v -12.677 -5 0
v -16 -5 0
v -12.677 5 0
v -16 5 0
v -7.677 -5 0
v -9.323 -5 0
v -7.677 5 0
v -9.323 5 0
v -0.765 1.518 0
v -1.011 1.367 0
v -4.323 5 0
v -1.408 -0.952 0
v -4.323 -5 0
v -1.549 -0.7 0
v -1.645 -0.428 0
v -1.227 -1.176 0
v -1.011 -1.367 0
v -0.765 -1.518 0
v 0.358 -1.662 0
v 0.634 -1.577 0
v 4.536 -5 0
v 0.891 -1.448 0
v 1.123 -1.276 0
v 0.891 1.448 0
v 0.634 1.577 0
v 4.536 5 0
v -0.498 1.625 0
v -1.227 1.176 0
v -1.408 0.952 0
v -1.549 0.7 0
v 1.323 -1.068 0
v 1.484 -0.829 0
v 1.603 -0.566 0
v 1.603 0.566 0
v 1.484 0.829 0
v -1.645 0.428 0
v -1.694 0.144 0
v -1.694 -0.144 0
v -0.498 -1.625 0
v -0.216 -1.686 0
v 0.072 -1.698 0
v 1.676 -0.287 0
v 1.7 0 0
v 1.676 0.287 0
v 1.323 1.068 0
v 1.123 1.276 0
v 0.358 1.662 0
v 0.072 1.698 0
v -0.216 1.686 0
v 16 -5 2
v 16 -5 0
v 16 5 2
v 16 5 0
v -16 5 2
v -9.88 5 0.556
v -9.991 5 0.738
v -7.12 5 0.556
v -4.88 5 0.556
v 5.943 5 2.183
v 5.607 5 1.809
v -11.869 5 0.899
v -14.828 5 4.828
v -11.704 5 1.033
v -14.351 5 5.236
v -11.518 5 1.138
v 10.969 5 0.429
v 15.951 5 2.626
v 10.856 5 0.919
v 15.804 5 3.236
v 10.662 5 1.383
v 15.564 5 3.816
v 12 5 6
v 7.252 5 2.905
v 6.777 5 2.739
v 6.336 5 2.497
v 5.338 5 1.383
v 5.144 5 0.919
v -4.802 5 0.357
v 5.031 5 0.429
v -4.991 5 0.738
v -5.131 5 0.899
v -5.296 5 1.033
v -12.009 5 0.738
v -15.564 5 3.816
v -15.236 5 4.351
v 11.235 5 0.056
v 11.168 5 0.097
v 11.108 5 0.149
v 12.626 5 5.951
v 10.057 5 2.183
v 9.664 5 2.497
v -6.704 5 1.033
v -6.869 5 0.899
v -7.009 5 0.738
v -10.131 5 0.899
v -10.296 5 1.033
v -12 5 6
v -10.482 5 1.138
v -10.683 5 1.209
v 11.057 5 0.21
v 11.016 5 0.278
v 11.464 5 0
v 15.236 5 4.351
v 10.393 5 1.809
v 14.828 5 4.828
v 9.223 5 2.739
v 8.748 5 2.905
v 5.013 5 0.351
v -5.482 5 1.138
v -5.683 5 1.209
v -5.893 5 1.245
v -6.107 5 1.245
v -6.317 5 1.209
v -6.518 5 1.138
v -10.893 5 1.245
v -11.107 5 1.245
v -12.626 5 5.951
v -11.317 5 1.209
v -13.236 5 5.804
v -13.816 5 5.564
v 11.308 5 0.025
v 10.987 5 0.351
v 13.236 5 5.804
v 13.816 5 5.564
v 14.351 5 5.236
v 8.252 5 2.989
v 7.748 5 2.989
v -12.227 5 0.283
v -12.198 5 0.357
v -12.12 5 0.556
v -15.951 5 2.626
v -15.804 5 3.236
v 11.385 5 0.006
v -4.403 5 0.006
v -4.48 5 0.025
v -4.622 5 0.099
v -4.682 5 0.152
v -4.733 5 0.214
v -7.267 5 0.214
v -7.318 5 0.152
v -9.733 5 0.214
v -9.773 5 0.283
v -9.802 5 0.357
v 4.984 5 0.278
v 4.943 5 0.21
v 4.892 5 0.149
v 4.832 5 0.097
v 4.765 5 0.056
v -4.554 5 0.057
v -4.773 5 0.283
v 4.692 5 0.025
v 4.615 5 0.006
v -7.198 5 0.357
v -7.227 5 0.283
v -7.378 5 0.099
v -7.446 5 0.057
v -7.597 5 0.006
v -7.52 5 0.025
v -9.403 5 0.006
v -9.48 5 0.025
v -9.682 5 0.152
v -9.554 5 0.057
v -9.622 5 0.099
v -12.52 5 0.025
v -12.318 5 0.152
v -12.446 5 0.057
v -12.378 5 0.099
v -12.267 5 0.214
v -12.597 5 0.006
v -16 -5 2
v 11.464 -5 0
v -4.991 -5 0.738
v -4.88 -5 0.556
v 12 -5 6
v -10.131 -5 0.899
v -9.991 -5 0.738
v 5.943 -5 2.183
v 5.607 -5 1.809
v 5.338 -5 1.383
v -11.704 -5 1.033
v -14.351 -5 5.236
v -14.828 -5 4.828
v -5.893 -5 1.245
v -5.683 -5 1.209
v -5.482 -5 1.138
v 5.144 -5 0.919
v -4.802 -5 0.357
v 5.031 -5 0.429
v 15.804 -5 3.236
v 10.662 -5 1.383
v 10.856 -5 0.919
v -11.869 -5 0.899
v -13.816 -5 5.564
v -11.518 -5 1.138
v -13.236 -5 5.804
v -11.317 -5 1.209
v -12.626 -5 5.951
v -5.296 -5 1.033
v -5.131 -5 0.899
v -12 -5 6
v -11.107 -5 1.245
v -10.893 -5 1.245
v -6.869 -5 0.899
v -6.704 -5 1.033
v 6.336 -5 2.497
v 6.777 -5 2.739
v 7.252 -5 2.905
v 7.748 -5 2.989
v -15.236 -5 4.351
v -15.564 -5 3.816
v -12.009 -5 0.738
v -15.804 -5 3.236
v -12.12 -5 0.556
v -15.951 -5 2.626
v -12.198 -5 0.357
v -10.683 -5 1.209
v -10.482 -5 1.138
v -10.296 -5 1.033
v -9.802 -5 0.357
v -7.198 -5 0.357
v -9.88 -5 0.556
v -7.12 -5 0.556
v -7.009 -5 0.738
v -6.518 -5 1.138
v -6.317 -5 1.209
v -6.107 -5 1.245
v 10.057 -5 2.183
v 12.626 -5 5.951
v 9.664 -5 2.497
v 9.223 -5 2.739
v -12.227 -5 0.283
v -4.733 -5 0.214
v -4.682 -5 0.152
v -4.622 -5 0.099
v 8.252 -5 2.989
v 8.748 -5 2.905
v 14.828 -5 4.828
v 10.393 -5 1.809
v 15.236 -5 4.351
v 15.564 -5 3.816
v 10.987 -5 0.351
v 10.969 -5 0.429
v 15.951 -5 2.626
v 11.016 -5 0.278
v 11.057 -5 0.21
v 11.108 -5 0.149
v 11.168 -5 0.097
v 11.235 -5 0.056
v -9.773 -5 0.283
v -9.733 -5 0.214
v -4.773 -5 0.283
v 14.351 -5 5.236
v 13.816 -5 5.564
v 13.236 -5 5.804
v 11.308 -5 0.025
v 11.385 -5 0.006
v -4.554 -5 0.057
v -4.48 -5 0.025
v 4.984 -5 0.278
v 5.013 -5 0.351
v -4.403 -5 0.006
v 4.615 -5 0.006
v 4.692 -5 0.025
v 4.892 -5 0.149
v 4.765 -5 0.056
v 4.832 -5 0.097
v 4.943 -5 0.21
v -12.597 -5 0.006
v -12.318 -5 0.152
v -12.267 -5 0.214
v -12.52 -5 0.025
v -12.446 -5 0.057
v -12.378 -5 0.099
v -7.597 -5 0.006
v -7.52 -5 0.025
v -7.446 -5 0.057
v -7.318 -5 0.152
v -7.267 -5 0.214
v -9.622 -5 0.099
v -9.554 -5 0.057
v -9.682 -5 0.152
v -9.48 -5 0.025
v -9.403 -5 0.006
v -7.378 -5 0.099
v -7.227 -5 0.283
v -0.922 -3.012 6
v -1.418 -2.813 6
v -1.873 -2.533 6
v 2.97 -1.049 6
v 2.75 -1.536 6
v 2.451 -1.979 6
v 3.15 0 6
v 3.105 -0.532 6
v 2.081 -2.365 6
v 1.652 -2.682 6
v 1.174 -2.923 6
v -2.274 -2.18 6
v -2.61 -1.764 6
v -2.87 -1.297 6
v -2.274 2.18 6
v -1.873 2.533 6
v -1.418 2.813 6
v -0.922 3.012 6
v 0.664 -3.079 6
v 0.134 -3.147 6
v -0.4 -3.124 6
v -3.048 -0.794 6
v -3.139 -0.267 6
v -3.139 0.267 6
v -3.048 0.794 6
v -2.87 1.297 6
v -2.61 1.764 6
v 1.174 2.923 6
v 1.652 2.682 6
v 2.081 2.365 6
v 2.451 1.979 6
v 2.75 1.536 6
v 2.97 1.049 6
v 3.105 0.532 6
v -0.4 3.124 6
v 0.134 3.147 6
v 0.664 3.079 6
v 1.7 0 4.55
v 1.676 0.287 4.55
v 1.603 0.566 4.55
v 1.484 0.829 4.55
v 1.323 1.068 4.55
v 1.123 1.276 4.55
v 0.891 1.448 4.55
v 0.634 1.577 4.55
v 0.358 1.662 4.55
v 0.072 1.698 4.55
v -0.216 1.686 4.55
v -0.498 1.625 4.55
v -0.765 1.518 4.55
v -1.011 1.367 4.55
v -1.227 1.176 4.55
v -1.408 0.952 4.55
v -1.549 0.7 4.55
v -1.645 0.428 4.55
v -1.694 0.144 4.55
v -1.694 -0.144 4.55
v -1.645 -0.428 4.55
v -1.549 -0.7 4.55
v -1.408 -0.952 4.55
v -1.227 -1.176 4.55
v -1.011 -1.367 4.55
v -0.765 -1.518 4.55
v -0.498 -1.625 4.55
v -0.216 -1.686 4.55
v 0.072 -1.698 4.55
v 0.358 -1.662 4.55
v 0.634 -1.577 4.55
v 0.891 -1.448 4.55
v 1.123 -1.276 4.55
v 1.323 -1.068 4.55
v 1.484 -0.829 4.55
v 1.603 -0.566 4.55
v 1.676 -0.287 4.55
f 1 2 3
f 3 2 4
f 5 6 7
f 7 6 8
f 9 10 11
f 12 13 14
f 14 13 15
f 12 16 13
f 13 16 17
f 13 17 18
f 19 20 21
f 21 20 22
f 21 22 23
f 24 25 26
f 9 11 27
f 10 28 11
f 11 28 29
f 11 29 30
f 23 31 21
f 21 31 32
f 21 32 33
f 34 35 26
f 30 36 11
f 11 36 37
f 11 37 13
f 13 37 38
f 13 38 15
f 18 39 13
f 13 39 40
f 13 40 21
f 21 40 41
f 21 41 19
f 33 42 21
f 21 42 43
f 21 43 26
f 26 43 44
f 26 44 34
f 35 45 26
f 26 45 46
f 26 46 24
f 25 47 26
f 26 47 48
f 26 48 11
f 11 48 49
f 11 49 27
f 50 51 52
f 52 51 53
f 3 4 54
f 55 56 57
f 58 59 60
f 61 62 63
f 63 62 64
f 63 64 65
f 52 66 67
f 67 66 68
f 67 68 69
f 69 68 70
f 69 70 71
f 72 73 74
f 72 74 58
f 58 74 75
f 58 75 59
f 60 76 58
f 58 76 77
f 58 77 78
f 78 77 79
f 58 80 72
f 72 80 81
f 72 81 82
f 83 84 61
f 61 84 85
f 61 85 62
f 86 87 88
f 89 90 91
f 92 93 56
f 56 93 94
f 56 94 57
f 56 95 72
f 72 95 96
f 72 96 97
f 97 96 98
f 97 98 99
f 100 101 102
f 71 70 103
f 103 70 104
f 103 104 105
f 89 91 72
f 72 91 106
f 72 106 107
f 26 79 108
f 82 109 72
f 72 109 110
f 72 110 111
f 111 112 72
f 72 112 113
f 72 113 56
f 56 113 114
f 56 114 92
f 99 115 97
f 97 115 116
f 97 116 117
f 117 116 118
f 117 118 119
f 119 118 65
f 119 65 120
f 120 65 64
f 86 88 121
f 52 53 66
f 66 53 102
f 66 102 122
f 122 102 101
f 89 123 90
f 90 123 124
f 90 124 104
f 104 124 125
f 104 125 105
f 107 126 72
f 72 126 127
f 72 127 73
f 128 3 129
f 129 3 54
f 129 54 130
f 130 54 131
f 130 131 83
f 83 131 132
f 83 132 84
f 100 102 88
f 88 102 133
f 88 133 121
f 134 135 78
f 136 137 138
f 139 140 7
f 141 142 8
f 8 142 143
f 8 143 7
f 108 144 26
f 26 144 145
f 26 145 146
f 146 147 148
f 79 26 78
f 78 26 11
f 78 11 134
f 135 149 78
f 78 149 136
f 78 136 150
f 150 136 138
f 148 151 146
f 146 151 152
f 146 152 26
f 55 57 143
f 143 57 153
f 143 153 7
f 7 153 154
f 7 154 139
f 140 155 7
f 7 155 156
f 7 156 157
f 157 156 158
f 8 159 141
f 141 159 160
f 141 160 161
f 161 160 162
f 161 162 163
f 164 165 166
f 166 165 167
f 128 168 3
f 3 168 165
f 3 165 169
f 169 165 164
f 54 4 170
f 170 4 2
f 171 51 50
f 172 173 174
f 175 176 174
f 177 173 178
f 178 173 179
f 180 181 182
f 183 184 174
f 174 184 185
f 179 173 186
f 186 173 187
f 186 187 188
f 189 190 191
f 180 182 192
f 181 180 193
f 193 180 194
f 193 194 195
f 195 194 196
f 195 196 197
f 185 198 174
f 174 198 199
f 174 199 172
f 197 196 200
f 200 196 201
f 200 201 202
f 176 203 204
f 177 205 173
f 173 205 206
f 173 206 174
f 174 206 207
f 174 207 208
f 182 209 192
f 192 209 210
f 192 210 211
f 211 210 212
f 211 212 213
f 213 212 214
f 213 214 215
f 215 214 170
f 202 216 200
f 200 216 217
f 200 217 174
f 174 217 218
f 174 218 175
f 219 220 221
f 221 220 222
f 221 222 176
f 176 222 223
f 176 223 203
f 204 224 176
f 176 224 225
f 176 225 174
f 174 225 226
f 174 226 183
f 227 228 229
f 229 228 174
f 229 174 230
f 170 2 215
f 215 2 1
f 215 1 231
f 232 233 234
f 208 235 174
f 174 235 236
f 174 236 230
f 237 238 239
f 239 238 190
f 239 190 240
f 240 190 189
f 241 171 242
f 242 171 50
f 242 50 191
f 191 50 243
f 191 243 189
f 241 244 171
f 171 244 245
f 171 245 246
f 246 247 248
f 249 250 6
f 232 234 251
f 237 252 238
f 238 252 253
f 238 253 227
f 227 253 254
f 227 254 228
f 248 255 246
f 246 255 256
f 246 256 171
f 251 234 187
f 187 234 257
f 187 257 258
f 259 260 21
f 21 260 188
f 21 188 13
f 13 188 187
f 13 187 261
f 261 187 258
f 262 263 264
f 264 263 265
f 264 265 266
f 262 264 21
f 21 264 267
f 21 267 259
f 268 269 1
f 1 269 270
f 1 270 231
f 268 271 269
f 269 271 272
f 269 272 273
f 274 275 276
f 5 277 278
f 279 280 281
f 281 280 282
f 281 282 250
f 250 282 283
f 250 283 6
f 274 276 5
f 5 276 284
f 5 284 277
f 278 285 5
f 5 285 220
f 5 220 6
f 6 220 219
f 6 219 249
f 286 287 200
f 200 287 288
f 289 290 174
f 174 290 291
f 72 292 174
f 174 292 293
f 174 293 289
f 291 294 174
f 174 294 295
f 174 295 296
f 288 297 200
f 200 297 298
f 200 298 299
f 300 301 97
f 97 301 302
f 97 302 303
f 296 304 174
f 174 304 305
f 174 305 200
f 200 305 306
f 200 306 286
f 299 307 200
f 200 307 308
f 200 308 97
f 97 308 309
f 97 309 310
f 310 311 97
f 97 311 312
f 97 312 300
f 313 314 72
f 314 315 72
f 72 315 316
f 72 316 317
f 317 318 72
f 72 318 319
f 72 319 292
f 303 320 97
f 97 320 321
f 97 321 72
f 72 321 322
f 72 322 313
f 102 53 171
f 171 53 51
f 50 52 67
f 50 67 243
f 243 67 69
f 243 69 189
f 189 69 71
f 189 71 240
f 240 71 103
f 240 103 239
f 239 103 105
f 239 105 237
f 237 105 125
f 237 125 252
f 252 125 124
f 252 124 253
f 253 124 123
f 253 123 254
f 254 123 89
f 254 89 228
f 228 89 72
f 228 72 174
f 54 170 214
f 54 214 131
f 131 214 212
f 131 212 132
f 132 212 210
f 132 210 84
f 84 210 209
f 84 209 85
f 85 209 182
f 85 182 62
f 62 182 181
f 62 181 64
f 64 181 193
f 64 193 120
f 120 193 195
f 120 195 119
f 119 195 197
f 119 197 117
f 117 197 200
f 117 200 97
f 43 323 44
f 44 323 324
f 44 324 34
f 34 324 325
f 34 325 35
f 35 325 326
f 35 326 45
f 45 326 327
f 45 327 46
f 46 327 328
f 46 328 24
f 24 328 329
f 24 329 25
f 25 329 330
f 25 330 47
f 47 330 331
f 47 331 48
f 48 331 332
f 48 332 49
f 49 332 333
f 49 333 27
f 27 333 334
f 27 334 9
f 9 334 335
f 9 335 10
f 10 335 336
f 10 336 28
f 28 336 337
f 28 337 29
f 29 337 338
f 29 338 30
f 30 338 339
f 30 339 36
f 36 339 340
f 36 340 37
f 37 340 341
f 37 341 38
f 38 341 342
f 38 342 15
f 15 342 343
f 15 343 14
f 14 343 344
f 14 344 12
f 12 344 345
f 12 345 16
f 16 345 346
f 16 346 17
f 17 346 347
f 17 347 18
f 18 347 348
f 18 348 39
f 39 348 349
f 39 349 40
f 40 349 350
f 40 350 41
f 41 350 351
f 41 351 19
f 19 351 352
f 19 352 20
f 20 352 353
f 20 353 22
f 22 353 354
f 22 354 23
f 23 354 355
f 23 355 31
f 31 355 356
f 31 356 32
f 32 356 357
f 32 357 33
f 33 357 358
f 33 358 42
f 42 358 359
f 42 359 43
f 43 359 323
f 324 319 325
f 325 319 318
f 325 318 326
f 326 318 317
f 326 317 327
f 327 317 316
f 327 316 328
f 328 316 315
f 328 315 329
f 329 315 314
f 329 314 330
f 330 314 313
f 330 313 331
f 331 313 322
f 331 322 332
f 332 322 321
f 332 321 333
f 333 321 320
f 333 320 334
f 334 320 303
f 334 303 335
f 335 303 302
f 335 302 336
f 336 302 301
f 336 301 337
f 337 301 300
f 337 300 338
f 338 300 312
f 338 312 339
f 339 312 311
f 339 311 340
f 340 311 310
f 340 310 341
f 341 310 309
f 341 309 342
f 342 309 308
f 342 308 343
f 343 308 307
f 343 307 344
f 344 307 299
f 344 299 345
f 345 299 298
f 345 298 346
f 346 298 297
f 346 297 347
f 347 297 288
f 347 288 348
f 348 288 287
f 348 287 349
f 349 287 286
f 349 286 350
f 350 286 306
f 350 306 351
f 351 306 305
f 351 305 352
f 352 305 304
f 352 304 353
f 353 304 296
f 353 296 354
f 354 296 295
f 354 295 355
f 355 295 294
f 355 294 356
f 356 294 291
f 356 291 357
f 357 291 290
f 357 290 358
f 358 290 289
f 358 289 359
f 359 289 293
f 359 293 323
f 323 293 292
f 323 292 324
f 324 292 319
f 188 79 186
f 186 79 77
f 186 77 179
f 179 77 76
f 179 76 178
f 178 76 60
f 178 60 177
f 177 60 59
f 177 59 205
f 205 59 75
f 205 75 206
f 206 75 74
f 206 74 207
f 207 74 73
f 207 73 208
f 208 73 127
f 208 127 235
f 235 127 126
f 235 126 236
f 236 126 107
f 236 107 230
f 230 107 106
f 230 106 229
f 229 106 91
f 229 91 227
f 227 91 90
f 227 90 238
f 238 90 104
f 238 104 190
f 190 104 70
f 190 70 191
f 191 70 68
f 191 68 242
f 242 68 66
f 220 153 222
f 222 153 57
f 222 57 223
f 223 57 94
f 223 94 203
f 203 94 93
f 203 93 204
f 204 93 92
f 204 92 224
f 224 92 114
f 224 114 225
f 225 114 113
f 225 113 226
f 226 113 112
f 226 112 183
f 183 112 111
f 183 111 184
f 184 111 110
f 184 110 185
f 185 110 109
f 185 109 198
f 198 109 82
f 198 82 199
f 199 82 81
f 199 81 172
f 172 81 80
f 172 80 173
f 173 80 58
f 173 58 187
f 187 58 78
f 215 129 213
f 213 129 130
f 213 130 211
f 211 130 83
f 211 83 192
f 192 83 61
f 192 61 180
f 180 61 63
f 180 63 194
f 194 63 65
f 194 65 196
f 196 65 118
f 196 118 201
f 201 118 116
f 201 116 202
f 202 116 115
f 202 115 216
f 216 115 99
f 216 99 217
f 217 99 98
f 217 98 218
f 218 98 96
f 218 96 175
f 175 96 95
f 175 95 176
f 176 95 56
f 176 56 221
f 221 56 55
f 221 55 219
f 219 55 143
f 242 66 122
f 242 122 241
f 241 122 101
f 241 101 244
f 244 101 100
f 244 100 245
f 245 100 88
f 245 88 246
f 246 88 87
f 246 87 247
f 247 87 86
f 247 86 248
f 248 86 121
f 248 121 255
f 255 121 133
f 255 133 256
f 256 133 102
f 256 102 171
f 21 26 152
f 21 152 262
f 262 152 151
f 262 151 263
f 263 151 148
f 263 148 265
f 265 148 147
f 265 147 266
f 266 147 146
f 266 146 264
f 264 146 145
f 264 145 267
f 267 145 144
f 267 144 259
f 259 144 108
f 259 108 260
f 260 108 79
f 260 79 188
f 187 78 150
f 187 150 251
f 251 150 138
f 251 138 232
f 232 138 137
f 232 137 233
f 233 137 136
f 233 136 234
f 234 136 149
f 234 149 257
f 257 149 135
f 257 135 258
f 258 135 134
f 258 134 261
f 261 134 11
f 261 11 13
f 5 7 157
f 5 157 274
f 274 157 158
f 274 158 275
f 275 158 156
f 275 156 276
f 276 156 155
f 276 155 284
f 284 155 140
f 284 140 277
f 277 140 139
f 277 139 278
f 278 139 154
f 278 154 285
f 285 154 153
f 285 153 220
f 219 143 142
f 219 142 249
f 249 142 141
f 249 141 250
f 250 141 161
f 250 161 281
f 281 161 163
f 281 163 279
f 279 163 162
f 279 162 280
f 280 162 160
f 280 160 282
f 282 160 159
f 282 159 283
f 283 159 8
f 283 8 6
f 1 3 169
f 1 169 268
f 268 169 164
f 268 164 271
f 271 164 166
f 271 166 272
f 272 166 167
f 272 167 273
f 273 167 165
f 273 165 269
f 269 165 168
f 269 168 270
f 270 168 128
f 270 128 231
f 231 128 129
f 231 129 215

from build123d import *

# Parameters (mm, degrees)
SKETCH1_W               = 32
SKETCH1_H               = 10
BOSS_EXTRUDE1_DEPTH     = 6
FILLET1_R               = 4
SKETCH3_R               = 1.25
SKETCH3_R_2             = 3
CUT_EXTRUDE1_DEPTH      = 6
CUT_EXTRUDE1_DEPTH_BACK = 6
FILLET2_R               = 0.5


with BuildPart() as part:
    # Sketch1 → Boss-Extrude1 (new body)
    with BuildSketch(Plane.XY):
        Rectangle(SKETCH1_W, SKETCH1_H)
    extrude(amount=BOSS_EXTRUDE1_DEPTH)

    # Fillet1
    fillet1_edges = [part.edges().sort_by_distance(p)[0] for p in [
        (-16, 0, 6),
        (16, 0, 6),
    ]]
    fillet(fillet1_edges, radius=FILLET1_R)

    # Sketch2 → Cut-Revolve1 (revolve, cut)
    with BuildSketch(Plane(origin=(0, 0, 0), x_dir=(1, 0, 0), z_dir=(0, 1, 0))):
        Polygon((3.15, -6), (0, -6), (0, 0), (1.7, 0), (1.7, -4.55), align=None)
    revolve(axis=Axis((0, 0, 12.35), (0, 0, -1)), mode=Mode.SUBTRACT)

    # Sketch3 → Cut-Extrude1 (cut, two sides)
    with BuildSketch(Plane(origin=(0, 0, 0), x_dir=(1, 0, 0), z_dir=(0, 1, 0))) as cut_extrude1_sk:
        with Locations((-11, 0)):
            Circle(SKETCH3_R)
        with Locations((-6, 0)):
            Circle(SKETCH3_R)
        with Locations((8, 0)):
            Circle(SKETCH3_R_2)
    extrude(amount=CUT_EXTRUDE1_DEPTH, mode=Mode.SUBTRACT)
    extrude(cut_extrude1_sk.sketch, amount=-CUT_EXTRUDE1_DEPTH_BACK, mode=Mode.SUBTRACT)

    # Fillet2
    fillet2_edges = [part.edges().sort_by_distance(p)[0] for p in [
        (11, 0, 0),
        (5, 0, 0),
        (-4.75, 0, 0),
        (-7.25, 0, 0),
        (-9.75, 0, 0),
        (-12.25, 0, 0),
    ]]
    fillet(fillet2_edges, radius=FILLET2_R)


solid = part.part
